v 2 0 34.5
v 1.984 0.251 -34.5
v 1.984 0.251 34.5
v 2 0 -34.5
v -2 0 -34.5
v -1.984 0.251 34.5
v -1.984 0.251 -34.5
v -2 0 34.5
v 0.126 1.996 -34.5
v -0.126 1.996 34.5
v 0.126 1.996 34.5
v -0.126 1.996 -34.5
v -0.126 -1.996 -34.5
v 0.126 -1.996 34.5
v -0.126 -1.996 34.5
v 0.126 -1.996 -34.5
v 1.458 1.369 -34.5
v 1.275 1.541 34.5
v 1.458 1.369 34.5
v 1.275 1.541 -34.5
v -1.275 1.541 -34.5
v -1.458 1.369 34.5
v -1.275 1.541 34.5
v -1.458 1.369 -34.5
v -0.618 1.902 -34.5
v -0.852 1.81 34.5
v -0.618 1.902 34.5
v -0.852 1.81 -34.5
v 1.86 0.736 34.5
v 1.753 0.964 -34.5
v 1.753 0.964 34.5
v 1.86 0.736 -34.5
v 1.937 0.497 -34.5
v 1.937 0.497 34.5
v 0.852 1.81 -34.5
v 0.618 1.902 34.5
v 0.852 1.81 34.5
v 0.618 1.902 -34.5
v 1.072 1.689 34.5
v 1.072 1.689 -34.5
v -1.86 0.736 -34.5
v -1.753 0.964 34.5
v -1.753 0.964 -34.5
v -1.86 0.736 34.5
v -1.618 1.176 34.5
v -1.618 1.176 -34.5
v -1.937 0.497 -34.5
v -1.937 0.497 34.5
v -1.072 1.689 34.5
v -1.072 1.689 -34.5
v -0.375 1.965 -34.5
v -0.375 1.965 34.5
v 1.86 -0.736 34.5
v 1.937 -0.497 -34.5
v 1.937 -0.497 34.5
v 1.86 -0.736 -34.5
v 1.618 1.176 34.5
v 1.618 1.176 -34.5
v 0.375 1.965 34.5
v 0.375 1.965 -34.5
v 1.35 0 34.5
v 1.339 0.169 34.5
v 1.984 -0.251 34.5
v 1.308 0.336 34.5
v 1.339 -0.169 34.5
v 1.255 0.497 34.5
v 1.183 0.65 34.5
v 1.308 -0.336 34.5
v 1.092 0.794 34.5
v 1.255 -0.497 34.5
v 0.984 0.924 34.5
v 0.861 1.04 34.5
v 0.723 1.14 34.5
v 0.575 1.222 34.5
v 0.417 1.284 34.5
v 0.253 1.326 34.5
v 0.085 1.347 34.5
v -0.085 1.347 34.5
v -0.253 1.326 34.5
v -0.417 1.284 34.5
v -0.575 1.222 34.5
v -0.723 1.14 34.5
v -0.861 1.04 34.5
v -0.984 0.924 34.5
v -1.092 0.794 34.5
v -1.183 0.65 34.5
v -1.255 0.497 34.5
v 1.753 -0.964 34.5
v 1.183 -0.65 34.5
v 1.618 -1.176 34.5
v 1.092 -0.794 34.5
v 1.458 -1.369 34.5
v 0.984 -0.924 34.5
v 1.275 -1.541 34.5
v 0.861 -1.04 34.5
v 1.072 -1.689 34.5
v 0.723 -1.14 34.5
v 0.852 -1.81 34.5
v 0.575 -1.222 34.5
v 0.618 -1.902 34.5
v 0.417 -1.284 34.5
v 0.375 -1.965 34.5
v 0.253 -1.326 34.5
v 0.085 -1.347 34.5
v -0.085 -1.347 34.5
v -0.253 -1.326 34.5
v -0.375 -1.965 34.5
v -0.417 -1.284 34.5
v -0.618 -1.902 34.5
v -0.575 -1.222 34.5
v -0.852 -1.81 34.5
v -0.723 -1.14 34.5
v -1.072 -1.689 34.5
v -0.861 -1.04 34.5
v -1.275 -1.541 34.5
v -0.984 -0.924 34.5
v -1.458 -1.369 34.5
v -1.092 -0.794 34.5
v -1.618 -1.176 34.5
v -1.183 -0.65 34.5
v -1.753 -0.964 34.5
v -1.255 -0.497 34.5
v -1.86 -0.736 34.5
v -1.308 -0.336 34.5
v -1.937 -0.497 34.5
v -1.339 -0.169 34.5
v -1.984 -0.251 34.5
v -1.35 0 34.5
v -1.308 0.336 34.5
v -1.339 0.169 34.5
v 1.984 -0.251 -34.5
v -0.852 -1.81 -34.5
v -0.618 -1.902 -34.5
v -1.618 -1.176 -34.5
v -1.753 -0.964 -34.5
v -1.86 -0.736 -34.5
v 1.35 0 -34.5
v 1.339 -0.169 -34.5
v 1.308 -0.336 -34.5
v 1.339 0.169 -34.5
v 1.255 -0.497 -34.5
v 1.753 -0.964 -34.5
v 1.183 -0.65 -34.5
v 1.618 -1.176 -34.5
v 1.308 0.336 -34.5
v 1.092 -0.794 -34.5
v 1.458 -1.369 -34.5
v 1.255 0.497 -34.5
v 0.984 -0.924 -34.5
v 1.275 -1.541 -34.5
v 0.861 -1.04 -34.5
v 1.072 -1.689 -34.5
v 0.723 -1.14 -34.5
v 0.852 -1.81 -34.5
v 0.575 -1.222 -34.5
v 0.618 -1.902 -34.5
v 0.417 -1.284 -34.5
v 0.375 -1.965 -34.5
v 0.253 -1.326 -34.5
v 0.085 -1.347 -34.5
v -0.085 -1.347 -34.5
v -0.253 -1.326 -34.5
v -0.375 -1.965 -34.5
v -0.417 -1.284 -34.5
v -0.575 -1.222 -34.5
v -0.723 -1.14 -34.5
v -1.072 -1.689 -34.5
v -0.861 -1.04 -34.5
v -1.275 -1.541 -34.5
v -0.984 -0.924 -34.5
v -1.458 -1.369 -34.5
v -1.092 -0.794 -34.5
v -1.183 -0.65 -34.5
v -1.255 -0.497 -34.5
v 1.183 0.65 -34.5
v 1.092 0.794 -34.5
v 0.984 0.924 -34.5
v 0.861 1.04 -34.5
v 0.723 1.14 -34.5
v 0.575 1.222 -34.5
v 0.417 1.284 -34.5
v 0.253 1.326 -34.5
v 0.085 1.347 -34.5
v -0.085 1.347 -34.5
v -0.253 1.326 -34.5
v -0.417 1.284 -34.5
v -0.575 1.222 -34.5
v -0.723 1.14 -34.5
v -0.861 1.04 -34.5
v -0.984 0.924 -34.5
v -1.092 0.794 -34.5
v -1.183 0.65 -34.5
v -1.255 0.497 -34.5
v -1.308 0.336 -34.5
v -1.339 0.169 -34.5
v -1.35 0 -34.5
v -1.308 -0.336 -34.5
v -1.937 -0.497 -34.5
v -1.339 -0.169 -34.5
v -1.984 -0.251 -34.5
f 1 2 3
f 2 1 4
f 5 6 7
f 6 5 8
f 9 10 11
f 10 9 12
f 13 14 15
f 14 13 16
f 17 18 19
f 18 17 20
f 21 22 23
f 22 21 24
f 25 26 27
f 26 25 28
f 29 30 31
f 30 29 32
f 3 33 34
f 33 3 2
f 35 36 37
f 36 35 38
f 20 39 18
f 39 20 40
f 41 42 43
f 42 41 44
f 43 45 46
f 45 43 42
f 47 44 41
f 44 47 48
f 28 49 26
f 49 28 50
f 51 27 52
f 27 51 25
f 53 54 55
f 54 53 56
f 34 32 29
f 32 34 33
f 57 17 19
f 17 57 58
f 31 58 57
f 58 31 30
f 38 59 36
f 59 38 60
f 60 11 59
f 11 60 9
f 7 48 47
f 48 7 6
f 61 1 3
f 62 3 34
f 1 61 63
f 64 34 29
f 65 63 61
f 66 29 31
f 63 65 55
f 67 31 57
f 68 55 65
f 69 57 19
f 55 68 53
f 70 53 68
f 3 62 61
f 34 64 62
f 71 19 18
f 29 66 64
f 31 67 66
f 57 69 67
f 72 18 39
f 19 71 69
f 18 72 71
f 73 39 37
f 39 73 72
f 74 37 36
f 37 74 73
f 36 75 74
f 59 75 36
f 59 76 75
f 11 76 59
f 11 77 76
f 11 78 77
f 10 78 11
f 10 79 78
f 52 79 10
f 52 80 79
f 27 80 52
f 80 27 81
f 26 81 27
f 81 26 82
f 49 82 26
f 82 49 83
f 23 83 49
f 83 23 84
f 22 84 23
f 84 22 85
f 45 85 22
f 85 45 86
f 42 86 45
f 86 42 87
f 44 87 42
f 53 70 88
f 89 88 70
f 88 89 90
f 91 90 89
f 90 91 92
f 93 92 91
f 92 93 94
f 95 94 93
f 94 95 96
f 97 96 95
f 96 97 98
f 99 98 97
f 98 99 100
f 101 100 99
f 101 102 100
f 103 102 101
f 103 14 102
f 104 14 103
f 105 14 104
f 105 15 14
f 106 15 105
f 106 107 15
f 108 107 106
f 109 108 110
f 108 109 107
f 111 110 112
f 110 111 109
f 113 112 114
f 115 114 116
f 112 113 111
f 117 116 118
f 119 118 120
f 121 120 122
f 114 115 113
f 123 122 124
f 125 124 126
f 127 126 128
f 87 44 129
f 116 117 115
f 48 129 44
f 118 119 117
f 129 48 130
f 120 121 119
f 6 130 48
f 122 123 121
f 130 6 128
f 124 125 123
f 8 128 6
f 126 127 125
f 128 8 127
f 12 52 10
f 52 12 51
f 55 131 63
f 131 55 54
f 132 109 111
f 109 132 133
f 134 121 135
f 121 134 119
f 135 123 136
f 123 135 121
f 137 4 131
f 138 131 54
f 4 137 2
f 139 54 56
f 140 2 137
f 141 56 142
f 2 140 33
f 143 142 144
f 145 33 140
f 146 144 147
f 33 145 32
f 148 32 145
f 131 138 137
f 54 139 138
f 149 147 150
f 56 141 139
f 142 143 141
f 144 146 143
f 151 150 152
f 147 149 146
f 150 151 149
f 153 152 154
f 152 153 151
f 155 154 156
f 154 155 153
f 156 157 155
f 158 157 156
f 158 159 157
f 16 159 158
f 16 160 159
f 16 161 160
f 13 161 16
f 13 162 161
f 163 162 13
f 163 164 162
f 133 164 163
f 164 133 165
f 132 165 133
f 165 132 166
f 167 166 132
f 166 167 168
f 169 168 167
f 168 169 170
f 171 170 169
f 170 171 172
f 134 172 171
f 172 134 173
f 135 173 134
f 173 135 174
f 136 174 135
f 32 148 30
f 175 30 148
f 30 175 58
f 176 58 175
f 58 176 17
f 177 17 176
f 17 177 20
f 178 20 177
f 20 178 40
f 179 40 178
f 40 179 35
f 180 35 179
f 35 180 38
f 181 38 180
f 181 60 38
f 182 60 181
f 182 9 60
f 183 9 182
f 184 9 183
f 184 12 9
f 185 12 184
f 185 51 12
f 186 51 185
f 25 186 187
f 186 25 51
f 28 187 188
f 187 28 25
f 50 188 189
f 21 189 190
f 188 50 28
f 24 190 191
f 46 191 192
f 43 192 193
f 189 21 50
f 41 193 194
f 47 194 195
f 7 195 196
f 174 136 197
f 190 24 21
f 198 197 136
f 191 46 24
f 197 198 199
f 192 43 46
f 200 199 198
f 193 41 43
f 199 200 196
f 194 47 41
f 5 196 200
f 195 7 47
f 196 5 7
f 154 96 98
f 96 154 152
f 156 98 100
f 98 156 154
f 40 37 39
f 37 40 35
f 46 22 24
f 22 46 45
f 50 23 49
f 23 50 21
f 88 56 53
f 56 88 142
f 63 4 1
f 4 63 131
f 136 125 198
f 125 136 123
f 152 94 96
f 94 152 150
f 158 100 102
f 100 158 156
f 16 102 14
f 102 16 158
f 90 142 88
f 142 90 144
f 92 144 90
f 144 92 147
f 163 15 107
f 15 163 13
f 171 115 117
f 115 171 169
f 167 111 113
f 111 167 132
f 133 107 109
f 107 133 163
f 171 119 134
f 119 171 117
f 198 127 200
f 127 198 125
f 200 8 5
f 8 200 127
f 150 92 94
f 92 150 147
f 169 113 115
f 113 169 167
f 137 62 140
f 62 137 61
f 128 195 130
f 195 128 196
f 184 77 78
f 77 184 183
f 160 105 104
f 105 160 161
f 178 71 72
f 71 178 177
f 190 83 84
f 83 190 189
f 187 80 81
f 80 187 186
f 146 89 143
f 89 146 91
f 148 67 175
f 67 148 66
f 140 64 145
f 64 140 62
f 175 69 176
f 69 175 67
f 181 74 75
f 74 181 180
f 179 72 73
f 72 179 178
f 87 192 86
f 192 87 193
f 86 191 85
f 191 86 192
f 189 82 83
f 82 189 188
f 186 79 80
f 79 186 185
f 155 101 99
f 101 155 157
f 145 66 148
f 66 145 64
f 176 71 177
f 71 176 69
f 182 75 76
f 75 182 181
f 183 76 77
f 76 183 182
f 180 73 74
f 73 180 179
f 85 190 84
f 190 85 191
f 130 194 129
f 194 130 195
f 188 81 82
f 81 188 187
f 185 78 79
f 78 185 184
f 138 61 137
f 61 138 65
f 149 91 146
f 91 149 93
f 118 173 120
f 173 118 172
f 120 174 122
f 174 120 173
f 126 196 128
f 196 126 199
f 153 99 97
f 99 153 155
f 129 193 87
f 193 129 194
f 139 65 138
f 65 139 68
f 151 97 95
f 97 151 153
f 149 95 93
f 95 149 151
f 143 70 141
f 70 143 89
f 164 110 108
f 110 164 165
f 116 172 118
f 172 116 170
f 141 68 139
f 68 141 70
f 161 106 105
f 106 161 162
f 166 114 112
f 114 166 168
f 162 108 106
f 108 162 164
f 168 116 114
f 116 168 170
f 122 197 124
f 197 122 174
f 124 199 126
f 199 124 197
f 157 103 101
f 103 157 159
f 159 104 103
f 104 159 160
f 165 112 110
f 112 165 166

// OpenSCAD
$fn = 50;


difference() {
	union() {
		translate(v = [0, 0, -34.5000000000]) {
			cylinder(h = 69, r = 2.0000000000);
		}
	}
	union() {
		translate(v = [0, 0, -100.0000000000]) {
			cylinder(h = 200, r = 1.3500000000);
		}
	}
}
